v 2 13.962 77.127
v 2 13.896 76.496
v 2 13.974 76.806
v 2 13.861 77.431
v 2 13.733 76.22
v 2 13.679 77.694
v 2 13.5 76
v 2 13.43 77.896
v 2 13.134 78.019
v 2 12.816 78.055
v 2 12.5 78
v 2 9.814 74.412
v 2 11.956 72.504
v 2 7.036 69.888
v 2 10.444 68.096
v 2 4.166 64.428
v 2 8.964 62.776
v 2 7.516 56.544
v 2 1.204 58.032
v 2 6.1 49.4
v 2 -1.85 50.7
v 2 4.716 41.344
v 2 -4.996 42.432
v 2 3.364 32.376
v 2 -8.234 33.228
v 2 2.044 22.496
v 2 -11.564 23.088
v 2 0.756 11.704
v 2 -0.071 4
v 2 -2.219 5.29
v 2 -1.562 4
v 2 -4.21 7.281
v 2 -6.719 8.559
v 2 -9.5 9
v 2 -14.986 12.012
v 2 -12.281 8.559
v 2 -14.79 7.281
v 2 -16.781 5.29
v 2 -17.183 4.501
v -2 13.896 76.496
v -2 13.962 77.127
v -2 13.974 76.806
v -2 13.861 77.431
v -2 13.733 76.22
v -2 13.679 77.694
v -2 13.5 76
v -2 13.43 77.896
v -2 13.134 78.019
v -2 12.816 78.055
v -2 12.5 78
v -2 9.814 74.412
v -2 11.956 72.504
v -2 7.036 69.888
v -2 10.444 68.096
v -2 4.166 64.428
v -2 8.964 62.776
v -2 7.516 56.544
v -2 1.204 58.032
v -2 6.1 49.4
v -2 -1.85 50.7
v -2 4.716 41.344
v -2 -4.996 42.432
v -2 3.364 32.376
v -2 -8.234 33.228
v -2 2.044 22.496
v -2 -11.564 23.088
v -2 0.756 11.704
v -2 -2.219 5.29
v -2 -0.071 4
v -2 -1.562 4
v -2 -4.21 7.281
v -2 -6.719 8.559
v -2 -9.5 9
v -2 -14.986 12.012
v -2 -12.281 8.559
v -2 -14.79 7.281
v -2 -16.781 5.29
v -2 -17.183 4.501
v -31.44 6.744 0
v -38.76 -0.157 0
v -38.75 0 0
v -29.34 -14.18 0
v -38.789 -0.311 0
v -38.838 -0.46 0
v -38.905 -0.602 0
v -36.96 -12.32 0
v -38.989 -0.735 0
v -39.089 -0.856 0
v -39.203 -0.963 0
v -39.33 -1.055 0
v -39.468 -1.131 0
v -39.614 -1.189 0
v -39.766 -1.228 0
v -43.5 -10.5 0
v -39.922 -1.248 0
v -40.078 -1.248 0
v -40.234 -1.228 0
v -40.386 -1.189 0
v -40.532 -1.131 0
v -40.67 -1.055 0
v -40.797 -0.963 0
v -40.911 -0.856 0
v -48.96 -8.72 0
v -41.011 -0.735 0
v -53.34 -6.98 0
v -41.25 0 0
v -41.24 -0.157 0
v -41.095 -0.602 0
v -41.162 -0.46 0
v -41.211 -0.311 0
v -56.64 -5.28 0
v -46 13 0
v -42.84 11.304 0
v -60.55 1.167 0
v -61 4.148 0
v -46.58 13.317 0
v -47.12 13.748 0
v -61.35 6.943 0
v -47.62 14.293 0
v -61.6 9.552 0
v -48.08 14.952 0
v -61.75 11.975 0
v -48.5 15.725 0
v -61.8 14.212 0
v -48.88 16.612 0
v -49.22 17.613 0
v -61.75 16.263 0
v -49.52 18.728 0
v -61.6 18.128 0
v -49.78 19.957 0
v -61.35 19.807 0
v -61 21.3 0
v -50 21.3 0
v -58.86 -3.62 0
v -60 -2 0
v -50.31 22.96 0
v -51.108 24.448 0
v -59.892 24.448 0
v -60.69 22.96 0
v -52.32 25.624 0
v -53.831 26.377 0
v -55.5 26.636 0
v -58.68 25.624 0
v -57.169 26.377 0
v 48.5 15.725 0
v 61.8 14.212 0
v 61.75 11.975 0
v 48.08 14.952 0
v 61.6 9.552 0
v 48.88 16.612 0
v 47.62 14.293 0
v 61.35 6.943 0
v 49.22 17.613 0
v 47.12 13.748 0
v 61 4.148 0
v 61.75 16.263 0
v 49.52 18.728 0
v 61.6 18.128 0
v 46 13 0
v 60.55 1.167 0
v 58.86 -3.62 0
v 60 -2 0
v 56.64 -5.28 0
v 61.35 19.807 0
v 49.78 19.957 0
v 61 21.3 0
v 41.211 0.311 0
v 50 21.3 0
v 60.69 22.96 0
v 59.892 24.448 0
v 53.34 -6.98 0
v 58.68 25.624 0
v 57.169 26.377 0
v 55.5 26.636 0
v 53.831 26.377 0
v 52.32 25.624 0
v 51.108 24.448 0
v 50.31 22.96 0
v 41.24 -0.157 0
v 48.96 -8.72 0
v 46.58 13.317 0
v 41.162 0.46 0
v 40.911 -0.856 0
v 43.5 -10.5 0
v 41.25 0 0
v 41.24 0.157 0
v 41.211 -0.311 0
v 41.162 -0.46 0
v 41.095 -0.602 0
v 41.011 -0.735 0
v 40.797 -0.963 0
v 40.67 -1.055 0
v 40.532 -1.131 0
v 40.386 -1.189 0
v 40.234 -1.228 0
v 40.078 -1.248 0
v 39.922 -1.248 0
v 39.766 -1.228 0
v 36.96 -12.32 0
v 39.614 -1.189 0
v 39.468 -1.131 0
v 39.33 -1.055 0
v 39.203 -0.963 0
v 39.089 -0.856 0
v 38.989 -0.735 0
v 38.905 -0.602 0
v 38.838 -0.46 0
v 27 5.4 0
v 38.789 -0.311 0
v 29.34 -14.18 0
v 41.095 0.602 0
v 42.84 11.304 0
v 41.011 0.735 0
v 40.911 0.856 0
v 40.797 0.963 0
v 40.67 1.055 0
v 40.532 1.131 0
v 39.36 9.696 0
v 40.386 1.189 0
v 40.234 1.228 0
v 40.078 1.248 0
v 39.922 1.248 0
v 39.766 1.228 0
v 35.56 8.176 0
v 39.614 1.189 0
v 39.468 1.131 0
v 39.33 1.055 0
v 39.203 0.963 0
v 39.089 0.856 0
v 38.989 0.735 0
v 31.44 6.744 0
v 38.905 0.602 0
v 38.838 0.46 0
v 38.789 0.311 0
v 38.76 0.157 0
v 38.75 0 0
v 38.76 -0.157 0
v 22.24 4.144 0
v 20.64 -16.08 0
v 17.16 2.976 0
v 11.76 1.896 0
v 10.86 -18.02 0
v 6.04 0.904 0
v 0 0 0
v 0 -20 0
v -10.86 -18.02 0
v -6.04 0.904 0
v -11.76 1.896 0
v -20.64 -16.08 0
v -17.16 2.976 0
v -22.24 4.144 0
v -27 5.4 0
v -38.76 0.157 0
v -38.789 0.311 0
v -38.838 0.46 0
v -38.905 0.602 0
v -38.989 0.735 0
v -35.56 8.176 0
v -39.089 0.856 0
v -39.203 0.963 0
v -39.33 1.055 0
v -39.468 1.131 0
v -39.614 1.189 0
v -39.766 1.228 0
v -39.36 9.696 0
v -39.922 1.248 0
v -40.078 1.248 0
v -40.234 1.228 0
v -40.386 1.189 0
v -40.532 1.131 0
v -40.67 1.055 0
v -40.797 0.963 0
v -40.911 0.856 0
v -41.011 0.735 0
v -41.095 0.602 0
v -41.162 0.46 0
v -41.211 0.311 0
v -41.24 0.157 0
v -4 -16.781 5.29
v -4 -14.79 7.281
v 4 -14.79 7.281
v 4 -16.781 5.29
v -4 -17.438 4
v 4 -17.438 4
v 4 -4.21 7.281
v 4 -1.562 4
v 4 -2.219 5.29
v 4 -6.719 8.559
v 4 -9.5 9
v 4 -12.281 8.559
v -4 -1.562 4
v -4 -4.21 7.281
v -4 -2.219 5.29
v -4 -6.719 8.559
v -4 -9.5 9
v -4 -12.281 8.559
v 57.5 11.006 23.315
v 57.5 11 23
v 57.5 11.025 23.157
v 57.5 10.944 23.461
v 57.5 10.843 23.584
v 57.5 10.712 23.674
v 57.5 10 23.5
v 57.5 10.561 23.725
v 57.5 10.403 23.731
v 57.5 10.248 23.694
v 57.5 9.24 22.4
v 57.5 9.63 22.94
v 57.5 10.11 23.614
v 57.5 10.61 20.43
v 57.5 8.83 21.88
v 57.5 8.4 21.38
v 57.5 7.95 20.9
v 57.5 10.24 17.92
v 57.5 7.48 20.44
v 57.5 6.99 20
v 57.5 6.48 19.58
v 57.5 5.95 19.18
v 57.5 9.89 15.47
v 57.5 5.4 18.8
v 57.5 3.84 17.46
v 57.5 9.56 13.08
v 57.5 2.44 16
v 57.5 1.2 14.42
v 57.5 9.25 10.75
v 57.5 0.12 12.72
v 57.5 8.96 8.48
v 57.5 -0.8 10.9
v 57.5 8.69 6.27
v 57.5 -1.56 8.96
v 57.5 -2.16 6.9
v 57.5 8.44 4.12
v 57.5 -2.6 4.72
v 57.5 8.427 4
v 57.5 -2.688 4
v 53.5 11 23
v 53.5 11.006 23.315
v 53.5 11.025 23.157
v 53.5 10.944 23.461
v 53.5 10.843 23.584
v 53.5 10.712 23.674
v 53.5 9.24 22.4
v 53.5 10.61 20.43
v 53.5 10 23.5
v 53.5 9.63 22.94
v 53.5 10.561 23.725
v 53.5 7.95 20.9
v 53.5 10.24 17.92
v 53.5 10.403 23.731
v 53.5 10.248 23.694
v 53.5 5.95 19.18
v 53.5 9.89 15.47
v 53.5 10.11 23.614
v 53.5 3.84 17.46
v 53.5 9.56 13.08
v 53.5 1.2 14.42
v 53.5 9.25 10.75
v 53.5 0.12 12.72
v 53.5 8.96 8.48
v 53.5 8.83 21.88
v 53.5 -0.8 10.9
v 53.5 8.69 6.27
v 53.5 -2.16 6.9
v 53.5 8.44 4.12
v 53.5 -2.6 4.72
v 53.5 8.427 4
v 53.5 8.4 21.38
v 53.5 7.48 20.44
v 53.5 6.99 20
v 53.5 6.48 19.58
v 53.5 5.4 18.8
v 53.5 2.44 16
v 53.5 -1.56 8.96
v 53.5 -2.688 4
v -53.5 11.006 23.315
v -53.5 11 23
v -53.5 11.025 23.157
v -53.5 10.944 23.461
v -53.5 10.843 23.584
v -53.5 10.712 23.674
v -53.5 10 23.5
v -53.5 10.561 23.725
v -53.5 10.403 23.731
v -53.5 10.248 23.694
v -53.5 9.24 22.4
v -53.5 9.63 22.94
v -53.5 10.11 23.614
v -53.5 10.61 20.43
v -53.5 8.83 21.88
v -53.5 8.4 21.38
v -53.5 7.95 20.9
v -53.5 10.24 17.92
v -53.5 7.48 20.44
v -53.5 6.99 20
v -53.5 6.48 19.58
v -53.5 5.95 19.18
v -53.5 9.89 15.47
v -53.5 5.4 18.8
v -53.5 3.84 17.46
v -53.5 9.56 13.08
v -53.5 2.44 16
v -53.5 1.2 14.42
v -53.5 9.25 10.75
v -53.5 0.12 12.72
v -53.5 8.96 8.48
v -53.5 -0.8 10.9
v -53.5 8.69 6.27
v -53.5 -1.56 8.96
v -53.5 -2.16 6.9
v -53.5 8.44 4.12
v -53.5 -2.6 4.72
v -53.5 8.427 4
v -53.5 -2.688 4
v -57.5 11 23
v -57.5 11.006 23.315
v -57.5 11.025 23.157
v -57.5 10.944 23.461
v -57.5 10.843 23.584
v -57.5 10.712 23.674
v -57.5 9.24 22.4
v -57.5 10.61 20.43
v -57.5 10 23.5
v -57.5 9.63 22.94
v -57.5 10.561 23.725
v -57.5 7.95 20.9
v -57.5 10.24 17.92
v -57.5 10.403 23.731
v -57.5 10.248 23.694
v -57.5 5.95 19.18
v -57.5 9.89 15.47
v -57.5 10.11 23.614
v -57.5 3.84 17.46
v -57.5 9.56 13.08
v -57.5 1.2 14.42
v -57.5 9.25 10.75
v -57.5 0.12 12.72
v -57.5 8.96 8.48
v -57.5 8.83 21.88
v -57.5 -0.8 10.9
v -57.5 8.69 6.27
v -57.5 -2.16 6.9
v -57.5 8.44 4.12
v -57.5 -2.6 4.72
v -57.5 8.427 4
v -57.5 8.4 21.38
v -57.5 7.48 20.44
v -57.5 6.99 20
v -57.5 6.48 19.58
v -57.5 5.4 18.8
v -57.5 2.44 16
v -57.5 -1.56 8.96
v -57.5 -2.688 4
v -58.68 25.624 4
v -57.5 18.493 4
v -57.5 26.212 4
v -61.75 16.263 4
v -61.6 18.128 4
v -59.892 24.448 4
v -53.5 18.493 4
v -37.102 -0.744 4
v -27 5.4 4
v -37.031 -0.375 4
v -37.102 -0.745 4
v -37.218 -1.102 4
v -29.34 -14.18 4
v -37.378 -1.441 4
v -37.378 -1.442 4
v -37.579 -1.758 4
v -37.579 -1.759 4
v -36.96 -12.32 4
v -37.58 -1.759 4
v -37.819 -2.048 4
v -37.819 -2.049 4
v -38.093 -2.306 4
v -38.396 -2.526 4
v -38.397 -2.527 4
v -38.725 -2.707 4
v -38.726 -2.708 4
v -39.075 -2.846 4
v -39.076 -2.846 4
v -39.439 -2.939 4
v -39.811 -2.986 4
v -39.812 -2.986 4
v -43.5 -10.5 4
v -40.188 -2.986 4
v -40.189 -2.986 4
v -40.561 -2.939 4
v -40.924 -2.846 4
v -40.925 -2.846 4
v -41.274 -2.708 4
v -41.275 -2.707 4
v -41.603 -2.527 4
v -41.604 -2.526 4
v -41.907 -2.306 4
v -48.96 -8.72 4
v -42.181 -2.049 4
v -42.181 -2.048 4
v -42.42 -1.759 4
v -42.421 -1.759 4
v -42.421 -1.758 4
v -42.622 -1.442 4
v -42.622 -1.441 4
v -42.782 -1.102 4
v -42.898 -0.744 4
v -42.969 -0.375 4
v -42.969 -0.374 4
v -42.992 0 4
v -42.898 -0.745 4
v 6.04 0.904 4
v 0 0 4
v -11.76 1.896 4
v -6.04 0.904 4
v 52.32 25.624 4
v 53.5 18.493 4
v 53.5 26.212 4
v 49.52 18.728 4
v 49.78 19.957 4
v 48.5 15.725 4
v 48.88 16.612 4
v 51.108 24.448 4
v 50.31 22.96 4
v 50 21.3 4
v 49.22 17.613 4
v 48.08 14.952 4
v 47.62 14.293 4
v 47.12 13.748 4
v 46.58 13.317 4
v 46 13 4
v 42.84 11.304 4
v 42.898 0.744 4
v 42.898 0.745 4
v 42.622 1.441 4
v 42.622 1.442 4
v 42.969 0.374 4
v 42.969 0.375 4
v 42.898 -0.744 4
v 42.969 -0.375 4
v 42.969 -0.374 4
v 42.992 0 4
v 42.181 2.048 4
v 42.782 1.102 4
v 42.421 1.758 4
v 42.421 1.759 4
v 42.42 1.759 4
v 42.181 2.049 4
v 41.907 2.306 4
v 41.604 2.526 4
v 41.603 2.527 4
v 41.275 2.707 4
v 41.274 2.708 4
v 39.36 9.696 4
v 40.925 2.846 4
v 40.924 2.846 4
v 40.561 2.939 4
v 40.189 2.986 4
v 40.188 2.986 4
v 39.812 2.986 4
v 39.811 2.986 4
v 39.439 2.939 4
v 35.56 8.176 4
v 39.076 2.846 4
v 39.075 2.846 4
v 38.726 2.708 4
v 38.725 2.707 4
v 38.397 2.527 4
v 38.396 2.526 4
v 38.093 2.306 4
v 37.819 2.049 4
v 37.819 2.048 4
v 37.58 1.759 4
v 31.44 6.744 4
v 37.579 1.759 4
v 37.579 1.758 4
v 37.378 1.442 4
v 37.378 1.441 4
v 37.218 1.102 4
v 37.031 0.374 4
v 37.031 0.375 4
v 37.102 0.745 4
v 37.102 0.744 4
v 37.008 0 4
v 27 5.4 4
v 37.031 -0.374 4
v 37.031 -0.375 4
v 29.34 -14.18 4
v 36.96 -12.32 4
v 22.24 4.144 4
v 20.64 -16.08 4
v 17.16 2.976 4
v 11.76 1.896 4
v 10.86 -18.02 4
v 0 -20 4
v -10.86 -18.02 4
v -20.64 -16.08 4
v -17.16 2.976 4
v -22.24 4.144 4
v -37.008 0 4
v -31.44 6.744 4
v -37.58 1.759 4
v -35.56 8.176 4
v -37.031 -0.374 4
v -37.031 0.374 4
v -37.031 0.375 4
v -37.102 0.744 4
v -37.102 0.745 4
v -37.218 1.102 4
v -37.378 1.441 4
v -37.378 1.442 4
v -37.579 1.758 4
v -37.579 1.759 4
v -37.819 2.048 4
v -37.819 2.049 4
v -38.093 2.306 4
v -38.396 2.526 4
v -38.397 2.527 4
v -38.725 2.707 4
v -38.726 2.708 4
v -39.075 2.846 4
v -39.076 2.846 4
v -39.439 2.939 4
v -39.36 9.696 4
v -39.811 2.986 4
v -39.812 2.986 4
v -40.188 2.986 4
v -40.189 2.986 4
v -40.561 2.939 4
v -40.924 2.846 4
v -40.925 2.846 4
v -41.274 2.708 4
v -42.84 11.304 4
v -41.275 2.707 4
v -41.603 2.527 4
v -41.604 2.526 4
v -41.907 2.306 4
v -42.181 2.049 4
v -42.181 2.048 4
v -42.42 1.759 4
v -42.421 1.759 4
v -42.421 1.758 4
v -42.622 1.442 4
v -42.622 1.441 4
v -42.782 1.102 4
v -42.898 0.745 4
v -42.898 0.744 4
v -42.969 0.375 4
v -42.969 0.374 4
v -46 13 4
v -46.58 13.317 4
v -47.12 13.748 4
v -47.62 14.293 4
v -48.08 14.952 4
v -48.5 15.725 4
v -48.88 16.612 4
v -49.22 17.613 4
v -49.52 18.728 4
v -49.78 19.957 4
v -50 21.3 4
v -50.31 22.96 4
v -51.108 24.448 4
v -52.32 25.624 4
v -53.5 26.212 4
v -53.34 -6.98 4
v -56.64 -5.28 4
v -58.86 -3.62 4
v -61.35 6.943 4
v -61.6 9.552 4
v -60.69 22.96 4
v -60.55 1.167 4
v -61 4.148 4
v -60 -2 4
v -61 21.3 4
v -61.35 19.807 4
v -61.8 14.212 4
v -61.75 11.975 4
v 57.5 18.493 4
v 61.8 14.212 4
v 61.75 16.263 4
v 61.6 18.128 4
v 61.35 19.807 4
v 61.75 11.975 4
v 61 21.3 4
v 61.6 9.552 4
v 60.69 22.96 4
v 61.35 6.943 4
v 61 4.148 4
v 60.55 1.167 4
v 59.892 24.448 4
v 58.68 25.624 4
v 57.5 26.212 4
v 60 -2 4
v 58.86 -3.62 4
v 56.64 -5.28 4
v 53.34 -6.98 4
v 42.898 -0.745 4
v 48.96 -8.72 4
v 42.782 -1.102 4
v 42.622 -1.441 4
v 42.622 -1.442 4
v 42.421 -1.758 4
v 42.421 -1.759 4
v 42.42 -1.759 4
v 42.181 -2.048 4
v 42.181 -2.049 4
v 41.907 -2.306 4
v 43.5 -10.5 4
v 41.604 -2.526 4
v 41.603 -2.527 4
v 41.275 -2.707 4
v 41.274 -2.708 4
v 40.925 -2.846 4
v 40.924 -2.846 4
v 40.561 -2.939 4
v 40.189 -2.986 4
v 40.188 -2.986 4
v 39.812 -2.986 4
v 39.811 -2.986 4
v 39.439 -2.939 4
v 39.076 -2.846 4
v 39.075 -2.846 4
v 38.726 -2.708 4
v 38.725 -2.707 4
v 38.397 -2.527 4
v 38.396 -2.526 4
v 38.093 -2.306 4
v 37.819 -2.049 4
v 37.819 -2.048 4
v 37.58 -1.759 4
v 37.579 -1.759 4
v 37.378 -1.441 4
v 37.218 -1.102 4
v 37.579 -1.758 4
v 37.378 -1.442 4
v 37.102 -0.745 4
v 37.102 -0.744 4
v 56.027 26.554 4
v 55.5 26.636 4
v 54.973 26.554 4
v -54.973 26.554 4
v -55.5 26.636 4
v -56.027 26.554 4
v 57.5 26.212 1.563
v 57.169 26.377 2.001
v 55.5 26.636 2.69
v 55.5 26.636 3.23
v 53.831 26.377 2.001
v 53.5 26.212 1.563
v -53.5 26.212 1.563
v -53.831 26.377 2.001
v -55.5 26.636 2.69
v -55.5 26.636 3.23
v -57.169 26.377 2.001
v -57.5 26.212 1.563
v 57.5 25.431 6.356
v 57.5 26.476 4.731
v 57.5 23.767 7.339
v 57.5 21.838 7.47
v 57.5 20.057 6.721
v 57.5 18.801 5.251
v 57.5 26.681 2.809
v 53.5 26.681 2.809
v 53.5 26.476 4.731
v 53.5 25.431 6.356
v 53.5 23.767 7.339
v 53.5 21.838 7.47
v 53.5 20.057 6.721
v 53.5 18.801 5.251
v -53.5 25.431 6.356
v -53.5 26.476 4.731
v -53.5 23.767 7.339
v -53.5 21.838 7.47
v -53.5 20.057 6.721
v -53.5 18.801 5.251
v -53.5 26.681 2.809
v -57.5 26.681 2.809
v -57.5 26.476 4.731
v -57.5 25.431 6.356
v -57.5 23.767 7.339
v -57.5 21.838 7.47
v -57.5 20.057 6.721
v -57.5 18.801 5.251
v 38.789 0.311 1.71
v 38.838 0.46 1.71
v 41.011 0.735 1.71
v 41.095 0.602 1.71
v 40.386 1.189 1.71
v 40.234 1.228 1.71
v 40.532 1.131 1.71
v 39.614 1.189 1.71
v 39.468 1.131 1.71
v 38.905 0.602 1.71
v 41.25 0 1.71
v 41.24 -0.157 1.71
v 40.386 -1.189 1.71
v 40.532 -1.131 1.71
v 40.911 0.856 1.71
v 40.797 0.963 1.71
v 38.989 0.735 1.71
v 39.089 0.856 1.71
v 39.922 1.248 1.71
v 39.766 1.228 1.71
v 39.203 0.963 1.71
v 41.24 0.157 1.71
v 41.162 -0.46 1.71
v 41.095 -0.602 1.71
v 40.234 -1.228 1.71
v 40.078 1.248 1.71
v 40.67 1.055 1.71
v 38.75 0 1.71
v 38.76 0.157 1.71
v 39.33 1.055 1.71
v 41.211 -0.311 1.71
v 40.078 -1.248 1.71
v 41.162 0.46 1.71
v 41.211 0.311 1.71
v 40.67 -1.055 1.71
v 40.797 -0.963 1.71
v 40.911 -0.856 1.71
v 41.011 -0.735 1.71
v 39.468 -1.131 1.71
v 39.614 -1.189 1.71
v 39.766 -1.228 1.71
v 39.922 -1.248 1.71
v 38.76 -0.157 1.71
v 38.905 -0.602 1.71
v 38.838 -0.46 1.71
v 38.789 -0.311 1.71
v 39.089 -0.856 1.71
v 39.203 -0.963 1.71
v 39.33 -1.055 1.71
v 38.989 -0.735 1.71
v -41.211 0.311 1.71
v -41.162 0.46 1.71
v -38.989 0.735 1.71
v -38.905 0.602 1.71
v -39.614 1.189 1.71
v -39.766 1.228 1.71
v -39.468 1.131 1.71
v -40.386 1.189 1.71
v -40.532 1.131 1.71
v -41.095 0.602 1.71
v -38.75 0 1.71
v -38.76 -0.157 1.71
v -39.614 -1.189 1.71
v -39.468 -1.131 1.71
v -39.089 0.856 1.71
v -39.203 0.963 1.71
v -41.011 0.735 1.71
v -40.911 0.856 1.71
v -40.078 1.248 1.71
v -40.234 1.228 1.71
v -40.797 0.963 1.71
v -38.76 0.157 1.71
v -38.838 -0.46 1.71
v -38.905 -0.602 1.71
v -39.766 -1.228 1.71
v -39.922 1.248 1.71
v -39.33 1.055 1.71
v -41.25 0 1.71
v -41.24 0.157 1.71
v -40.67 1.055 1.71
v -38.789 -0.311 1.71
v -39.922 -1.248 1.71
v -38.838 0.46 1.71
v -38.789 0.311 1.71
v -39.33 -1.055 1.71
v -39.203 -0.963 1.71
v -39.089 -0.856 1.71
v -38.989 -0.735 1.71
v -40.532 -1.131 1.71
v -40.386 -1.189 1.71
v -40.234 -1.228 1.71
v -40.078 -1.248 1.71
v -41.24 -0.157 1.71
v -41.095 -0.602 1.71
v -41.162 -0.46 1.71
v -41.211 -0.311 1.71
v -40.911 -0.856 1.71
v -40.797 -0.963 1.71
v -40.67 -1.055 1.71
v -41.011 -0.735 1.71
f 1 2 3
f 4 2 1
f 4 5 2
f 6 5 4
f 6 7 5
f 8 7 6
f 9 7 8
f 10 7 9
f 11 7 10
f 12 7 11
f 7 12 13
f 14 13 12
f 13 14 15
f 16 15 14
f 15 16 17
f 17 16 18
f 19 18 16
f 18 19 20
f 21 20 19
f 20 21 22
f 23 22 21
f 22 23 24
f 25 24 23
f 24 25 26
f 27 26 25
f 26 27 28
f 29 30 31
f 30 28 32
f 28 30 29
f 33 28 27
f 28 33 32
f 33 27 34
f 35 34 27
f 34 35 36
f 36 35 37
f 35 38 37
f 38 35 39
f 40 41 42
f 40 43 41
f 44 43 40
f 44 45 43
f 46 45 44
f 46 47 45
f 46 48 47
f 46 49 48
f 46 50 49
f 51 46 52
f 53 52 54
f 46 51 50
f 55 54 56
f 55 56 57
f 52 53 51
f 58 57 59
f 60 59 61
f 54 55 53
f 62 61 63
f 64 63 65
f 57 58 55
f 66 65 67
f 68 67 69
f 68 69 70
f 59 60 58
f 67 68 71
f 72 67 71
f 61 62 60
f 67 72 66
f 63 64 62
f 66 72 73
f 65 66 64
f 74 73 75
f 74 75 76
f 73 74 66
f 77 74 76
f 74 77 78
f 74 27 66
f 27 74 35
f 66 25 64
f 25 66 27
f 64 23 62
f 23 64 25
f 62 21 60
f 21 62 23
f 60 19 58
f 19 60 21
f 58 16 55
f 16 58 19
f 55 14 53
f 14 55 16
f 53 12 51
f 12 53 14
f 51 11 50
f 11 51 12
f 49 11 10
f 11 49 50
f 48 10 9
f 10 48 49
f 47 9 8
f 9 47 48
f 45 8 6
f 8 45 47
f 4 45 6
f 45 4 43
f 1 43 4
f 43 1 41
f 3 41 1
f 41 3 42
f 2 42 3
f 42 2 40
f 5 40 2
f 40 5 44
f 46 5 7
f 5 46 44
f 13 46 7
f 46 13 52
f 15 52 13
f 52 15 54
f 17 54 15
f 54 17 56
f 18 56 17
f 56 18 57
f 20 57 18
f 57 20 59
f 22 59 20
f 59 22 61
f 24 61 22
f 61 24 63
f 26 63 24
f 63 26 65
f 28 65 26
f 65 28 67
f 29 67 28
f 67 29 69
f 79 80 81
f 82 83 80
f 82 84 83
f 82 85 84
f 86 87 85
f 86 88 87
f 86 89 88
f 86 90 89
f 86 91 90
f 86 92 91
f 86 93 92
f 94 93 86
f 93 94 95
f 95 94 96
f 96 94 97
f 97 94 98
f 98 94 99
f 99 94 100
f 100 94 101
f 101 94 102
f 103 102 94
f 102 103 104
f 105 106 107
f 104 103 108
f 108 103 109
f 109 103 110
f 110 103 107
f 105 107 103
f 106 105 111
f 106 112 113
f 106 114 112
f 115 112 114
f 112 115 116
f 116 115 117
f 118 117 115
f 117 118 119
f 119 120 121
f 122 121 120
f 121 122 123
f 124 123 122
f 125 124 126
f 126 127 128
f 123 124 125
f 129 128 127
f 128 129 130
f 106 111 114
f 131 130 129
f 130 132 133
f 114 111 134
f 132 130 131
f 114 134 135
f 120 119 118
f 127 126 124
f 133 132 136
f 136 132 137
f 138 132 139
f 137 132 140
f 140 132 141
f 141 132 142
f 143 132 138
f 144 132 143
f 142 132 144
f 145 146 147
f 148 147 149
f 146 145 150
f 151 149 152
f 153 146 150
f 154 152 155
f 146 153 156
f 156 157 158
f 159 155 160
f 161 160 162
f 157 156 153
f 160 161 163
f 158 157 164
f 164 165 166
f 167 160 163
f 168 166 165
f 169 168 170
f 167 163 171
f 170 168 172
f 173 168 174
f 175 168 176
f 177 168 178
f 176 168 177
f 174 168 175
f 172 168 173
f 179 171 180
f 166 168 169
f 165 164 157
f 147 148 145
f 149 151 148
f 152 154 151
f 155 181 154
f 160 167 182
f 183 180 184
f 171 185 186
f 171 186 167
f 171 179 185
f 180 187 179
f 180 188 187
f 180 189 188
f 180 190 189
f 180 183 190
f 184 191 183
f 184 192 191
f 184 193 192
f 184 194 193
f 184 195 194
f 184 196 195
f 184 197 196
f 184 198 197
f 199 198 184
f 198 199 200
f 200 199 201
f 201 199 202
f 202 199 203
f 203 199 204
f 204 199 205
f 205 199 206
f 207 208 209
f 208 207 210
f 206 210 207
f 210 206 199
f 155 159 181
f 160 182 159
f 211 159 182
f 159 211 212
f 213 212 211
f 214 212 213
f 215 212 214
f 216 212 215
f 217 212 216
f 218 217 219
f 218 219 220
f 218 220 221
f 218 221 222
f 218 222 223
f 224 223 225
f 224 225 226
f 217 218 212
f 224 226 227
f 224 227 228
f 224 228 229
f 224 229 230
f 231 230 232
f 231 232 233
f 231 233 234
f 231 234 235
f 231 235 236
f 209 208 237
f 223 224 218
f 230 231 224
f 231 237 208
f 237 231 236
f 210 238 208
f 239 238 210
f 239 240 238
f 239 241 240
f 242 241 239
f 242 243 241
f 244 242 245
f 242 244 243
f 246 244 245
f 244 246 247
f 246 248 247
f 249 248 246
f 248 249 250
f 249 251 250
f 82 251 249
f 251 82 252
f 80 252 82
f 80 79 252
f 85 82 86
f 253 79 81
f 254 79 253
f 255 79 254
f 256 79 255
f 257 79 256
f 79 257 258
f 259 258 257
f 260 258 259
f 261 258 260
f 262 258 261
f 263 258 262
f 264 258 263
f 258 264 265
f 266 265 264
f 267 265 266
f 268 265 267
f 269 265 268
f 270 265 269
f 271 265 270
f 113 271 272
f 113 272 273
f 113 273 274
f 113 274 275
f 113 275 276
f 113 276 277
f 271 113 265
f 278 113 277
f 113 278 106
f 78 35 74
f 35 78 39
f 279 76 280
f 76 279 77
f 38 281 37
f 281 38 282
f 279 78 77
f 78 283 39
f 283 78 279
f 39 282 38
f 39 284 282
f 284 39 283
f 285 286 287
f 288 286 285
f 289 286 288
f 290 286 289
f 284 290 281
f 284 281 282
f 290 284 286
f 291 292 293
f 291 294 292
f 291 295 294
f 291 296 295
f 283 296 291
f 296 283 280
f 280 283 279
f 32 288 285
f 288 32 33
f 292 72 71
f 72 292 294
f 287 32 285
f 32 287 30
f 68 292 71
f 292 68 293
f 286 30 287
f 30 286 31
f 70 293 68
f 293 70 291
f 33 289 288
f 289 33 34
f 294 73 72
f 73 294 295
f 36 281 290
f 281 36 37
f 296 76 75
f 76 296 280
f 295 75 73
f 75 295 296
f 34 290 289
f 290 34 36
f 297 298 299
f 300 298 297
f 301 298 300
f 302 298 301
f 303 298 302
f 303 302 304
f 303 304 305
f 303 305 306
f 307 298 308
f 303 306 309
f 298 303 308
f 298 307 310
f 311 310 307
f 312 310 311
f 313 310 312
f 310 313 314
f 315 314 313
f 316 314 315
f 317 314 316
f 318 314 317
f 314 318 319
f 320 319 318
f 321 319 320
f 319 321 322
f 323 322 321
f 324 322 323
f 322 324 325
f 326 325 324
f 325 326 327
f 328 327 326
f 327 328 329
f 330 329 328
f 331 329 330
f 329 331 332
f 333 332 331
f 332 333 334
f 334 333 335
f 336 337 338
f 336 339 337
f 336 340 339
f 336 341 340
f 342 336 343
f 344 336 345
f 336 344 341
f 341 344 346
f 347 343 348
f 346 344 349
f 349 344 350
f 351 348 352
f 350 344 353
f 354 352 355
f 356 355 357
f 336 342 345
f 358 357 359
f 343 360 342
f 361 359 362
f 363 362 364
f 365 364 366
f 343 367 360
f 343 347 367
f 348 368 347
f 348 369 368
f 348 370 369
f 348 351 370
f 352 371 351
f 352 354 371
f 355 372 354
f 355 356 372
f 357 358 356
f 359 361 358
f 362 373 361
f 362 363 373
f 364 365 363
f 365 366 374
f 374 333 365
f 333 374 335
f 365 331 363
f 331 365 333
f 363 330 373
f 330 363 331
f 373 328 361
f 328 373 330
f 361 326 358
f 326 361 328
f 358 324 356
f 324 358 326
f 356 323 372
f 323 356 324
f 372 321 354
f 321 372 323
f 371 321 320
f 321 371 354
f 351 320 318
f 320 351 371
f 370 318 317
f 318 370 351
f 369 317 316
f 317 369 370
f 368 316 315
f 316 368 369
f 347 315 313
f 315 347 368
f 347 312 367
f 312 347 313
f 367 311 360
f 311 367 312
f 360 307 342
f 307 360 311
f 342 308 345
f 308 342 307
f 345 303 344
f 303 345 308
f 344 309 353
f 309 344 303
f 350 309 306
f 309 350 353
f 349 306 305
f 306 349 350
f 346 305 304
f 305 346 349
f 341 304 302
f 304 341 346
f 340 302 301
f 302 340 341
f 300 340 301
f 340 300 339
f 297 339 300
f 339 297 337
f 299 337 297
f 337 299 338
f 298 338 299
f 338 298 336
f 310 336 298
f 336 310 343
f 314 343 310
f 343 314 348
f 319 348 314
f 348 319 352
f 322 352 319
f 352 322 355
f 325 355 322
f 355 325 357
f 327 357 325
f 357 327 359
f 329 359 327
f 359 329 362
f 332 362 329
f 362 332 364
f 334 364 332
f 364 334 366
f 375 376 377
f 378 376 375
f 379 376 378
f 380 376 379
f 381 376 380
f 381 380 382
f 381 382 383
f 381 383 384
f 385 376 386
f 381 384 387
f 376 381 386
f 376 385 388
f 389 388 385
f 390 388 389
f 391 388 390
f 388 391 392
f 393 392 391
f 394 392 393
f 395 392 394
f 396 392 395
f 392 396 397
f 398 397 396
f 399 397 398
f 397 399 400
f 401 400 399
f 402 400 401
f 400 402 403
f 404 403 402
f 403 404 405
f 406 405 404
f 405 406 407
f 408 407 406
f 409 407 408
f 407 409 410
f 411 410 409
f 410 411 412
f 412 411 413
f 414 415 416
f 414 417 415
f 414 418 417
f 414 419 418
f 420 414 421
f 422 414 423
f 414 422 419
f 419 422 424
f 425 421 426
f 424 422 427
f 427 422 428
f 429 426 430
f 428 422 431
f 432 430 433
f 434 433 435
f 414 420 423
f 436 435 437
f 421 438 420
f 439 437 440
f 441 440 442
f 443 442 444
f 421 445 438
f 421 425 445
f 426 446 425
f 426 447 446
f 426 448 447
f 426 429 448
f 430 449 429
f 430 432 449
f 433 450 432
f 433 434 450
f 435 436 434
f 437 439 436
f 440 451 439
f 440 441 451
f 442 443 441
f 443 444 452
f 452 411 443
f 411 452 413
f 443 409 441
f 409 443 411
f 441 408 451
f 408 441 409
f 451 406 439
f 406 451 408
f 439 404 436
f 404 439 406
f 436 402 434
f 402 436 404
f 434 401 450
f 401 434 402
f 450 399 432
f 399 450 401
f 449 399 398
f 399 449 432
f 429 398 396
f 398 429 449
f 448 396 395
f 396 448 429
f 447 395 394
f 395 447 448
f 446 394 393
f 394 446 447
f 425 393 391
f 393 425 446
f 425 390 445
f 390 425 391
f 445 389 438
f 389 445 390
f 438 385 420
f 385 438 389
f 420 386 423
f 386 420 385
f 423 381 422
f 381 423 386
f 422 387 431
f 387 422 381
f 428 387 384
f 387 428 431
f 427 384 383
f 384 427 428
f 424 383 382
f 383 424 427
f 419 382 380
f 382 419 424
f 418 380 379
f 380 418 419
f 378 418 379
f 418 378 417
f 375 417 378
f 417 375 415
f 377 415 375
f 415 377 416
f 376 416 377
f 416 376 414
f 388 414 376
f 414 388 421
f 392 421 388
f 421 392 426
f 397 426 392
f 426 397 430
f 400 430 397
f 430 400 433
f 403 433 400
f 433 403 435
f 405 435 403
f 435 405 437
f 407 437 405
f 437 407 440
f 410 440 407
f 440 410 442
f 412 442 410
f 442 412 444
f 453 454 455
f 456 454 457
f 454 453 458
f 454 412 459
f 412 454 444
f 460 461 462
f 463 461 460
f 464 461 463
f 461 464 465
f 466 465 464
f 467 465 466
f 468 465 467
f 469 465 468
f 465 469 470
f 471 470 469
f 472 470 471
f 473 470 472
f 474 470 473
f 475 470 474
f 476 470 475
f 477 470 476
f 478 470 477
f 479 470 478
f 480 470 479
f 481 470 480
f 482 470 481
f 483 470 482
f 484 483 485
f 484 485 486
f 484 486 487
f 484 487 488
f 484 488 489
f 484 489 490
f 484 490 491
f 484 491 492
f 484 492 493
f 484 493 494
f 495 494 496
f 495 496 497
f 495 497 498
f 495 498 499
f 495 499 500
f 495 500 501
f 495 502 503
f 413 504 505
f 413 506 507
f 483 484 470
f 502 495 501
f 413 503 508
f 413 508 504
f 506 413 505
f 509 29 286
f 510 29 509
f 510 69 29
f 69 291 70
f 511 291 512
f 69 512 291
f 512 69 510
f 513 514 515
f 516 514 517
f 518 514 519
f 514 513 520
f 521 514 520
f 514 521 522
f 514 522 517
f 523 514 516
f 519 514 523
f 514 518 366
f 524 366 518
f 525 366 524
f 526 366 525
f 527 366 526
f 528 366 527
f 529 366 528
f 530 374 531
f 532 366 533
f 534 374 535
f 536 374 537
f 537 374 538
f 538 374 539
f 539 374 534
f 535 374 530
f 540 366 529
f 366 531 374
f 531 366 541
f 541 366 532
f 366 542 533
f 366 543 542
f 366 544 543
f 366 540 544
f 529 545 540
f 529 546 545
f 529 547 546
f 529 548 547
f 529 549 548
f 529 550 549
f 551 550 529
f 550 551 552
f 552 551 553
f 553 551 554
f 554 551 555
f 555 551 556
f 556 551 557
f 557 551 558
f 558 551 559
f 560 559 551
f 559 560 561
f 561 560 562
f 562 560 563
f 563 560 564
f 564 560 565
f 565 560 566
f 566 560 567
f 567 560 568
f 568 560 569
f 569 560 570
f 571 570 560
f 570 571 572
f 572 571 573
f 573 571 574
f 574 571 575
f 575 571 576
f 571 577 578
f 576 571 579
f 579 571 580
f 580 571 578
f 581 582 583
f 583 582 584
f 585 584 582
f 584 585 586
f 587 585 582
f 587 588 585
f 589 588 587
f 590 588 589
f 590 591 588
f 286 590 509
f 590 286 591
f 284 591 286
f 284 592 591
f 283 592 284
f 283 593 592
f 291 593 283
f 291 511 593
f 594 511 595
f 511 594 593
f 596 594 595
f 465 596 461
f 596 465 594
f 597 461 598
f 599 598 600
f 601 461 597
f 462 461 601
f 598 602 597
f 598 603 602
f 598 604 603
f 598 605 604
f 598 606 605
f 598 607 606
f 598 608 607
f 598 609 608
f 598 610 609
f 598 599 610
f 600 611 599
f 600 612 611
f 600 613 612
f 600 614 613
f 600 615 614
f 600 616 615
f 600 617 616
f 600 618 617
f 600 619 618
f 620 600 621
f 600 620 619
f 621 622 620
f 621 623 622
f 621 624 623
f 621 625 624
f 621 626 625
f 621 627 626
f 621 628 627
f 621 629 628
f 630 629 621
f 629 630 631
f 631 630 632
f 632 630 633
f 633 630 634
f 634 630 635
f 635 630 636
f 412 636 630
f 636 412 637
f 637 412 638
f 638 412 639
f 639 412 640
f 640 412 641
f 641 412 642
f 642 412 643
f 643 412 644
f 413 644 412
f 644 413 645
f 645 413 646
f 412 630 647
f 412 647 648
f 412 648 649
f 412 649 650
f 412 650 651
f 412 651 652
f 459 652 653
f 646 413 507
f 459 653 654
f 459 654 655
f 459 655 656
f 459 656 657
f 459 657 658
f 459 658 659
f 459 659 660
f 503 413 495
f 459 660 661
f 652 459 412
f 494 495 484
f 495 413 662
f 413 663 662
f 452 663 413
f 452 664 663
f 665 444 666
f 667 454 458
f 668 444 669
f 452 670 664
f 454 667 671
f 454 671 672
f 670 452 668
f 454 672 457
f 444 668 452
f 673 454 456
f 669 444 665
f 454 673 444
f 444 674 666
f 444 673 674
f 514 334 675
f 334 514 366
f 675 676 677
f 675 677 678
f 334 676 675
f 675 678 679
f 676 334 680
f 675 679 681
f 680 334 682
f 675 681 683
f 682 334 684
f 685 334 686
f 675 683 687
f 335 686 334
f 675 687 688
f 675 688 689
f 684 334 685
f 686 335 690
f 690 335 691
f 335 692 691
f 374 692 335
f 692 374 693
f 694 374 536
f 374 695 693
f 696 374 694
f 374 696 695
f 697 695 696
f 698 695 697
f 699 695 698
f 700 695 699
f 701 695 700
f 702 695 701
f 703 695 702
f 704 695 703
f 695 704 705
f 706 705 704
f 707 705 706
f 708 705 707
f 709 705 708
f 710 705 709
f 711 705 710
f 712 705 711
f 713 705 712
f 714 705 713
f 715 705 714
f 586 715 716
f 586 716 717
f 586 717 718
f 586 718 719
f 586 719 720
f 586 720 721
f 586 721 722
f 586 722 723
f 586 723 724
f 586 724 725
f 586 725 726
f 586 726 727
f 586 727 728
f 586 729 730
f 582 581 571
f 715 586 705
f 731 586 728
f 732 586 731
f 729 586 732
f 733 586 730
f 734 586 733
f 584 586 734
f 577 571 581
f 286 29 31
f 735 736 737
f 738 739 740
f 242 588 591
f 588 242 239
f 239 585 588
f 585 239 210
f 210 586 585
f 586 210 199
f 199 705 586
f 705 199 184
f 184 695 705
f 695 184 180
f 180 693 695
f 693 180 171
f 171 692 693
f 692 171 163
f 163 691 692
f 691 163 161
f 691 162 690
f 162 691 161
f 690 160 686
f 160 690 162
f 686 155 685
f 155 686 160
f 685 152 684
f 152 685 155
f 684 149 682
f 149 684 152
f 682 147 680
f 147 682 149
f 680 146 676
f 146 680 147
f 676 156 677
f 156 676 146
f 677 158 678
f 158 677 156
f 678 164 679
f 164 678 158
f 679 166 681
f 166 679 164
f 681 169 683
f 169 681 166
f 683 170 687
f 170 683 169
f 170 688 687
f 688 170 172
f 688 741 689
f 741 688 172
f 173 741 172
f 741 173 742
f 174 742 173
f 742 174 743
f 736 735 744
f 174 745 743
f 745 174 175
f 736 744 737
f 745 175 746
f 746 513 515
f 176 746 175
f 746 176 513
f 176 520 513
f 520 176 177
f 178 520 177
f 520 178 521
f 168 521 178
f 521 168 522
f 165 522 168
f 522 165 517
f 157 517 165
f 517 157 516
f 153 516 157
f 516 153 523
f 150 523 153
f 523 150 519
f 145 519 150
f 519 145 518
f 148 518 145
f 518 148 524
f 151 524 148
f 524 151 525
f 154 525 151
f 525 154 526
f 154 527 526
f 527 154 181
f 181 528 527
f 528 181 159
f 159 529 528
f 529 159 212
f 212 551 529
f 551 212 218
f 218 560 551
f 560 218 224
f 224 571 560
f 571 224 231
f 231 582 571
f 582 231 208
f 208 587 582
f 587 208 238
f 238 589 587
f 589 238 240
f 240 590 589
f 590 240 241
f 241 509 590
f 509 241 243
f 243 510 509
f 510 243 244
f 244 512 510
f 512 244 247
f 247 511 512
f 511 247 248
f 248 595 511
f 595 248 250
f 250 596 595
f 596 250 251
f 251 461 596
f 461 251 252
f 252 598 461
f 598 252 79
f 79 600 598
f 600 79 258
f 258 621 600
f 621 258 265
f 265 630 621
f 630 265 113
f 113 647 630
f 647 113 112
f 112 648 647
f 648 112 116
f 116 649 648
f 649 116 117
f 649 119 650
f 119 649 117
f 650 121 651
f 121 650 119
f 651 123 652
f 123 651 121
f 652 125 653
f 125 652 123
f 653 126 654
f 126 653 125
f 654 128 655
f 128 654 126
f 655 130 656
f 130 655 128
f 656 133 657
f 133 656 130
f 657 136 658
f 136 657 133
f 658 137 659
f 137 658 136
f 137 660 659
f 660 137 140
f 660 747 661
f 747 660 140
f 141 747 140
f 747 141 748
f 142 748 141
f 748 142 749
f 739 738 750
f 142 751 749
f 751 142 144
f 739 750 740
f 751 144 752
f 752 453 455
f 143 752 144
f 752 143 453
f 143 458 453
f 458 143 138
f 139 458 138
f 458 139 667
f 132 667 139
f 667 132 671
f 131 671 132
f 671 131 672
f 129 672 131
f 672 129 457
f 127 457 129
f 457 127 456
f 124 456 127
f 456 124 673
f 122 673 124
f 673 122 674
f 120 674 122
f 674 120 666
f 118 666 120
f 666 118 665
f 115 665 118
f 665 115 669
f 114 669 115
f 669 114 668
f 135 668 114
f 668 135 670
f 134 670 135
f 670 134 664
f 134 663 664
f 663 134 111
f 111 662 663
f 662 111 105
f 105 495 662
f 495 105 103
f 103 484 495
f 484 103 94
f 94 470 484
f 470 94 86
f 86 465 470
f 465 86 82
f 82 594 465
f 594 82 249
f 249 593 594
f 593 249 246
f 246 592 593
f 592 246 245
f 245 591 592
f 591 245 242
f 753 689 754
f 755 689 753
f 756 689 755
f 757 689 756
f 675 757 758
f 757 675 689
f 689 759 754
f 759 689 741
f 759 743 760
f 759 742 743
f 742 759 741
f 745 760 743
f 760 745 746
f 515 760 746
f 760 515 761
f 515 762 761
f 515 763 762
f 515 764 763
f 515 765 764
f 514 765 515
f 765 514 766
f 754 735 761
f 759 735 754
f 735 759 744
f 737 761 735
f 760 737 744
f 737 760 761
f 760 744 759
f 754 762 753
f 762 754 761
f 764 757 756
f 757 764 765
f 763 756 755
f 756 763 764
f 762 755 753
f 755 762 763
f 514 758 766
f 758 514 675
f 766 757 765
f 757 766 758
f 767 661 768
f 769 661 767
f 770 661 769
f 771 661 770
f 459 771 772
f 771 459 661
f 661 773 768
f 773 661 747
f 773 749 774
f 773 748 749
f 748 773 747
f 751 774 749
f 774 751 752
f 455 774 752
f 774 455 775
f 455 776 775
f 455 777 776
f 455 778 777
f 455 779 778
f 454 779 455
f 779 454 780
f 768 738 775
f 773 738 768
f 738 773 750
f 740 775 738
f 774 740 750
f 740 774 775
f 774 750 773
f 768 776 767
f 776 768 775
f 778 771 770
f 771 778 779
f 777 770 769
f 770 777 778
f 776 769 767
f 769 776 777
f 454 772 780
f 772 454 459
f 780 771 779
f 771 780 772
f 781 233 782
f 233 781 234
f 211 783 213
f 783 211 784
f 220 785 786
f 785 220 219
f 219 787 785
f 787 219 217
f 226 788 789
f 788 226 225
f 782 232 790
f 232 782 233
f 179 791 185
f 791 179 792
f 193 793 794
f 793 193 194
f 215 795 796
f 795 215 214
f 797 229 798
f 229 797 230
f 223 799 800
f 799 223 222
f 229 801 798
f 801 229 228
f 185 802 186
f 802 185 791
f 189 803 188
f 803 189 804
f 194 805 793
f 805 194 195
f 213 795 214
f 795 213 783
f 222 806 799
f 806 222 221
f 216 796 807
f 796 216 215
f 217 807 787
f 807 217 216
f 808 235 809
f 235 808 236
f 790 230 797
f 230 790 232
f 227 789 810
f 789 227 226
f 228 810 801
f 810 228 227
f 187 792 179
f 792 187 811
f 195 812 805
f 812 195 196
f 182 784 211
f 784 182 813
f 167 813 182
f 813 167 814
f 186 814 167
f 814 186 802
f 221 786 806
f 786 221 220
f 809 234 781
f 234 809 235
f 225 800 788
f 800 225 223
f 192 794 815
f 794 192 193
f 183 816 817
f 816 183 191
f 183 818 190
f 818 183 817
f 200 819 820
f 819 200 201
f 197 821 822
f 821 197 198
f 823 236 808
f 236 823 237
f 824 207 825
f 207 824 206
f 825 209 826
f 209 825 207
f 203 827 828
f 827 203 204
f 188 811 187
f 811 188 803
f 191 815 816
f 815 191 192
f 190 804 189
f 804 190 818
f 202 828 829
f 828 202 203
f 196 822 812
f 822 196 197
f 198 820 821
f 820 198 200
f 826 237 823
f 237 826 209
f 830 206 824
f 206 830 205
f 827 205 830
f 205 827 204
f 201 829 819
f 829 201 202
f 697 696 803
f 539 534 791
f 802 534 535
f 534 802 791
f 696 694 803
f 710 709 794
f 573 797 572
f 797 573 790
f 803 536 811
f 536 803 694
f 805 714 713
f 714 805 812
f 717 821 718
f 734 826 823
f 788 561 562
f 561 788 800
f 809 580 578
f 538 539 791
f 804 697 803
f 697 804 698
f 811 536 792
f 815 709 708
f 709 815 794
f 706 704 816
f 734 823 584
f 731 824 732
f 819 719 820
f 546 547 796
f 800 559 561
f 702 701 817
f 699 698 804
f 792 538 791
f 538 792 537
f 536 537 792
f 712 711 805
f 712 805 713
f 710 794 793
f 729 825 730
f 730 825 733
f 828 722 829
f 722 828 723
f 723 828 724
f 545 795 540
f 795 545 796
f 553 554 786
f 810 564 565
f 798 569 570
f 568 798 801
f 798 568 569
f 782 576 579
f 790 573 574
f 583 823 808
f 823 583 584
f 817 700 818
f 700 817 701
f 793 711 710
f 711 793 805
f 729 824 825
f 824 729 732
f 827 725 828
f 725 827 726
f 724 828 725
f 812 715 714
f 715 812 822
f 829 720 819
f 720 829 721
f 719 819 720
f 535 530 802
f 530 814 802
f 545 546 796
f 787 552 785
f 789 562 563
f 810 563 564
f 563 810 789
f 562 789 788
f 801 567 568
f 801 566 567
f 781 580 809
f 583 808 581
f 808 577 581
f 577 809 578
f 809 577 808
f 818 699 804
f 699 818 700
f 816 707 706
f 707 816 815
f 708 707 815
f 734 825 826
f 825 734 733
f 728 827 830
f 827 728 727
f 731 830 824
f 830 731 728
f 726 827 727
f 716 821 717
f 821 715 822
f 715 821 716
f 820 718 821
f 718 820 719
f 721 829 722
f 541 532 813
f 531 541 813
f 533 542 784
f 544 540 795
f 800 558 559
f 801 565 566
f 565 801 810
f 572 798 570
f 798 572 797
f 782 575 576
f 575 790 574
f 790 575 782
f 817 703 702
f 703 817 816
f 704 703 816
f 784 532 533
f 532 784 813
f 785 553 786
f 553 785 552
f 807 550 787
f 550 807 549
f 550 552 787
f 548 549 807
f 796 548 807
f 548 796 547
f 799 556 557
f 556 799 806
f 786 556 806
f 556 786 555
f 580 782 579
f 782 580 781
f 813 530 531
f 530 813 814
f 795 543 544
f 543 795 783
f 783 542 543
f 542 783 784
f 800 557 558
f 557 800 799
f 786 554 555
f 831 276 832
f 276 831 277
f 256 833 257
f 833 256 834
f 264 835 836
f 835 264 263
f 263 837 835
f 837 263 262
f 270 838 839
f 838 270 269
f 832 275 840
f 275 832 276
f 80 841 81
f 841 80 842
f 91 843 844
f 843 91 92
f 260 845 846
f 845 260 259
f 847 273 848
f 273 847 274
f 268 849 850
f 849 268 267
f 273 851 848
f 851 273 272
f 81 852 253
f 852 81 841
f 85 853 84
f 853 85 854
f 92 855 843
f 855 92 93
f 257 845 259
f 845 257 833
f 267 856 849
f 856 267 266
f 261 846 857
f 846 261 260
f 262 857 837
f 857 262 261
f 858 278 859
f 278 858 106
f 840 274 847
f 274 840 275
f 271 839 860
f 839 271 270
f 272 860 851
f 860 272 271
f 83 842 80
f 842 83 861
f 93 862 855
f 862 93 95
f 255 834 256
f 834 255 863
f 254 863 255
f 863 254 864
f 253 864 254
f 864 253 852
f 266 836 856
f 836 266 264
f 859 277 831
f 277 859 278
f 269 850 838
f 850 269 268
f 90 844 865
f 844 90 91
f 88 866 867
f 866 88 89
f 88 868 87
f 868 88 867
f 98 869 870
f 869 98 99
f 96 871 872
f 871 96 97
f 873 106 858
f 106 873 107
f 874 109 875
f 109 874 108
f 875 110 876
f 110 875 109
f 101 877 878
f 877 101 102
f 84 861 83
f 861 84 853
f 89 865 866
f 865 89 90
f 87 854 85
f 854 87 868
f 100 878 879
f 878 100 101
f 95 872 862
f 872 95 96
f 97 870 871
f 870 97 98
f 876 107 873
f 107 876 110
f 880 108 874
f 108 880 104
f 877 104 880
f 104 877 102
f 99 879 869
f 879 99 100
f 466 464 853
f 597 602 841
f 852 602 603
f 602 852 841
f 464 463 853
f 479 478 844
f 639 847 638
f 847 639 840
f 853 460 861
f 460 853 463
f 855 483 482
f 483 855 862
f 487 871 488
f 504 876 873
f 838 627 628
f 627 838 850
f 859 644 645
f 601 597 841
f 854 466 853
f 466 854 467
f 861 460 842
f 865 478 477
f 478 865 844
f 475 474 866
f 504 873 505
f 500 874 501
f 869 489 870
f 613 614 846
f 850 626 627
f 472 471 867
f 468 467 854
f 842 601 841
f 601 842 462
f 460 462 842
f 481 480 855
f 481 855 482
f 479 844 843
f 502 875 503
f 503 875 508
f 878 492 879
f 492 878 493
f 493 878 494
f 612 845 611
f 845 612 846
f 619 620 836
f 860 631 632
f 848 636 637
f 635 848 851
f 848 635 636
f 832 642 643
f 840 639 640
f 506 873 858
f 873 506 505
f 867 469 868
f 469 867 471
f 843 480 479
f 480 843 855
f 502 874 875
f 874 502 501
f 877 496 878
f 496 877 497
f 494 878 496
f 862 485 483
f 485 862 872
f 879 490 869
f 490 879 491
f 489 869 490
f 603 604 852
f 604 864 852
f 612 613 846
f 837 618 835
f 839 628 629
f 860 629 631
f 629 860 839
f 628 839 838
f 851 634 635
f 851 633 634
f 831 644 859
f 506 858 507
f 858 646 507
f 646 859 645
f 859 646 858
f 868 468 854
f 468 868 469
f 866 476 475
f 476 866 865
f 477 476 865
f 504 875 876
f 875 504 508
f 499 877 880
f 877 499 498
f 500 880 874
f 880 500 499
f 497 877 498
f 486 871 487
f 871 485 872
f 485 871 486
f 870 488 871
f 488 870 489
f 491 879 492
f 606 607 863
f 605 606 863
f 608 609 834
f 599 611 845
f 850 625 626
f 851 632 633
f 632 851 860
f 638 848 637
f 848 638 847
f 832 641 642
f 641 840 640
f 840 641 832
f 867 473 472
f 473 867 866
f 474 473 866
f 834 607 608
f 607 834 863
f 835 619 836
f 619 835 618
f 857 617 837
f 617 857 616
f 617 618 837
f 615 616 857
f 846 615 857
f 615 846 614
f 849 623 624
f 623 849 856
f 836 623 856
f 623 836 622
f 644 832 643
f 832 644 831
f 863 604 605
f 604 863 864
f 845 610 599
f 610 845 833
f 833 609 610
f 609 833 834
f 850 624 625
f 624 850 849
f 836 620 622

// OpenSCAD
// file: vector.scad
function is_nan(x) = x != x ;

// reverse vector
function reverse(v) = [for (i =[len(v)-1:-1:0]) v[i]];
// repeat vector n-times
function repeat(v, n) = [for (i=[0:n*len(v)-1])  v[ i%len(v) ] ];
// allow negative indexes for vector (counting from the back). -1 is last element in array
function v_index(v, n) = is_undef(n) ? len(v) : n < 0 ? len(v)+n : n ;
// cut slice of vertor. `start` included , `end` excluded.
function slice(v, start, end=undef) = [for (i=[start:v_index(v,end)-1]) v[i] ];

function v_add(v, n) = [for (i=[0:len(v)-1]) v[i]+n ];

assert(reverse([1,2,3]) == [3,2,1]);
assert(repeat([1,2],3) ==  [1, 2, 1, 2, 1, 2]);
assert(v_index([1,2,3],-1)==2);
assert(v_index([1,2,3],0) == 0);
assert(v_index([1,2,3],undef)==3);
assert(slice([1,2,3],1,-1)==[2]);
assert(slice([1,2,3],1)==[2,3]);
assert(v_add([1,2,3],1)==[2,3,4]);
// file: 2d.scad
use <vector.scad>

function max_x(a, i = 0) = (len(a) == 0) ? 0 : (i < len(a) - 1) ? max(a[i][0], max_x(a, i+1)) : a[i][0];
function shift_x(a, dx, scaler=1) = [for ( p=a) [scaler*p[0]+dx,p[1]] ];

function scale_poly(a, s=[1,1]) = [for (p=a) [ s[0]*p[0], s[1]*p[1] ]];
function shift_poly(a, d=[0,0]) = [for (p=a) [ d + p ]];

function inverse_x(a) = shift_x(reverse(a),max_x(a),-1);
function mirror_x(a) = shift_x(reverse(a),0,-1);

function symmetry_x(a) = scale_poly(reverse(a),s=[-1,1]);
function symmetry_y(a) = scale_poly(reverse(a),s=[1,-1]);

function concat_with_undefs(prev,next) = 
    len(prev) == 0 ? next : 
        let (prev_last_p = prev[v_index(prev,-1)]) 
        is_undef(prev_last_p[1])  
            ? concat(slice(prev,0,-1),[[prev_last_p[0],next[0][1]]],next) 
            : is_undef(next[0][1]) 
                ? concat(prev, [[next[0][0],prev_last_p[1]]], slice(next,1)) 
                : concat(prev, next) ;

function join_poly(polys, r = [], i=0) = (i < len(polys)) ? 
    join_poly( polys, concat_with_undefs(r,shift_x(polys[i],max_x(r))) ,i+1) : r;

function line_segment(p1,p2) = [p1,[p2[0]-p1[0], p2[1] - p1[1]]];

function ls_slope(ls) = ls[1][1]/ls[1][0] ;

function ls_distance(ls) = sqrt(pow(ls[1][1],2)+pow(ls[1][0],2));

function ls_angle(ls) = 
    let (ss = sign(ls[1][1]) == -1 ? -1 : 1)
    let (sc = sign(ls[1][0]) == -1 ? -1 : 1)
    let (ts = asin(ls[1][1]/ls_distance(ls))) 
    ts != 0 ? ( sc == -1 ? ss * 180 - ts : ts ) : ss*acos(ls[1][0]/ls_distance(ls))  ;
    
assert(ls_angle([[0, 0], [1, 0]])==0);
assert(ls_angle([[0, 0], [-1, 0]])==180);


function angle_diff_cw(a1, a2) = a1 < a2 ? angle_diff_cw(a1+360, a2) : a1 - a2 ;

function angle_diff_ccw(a1, a2) = angle_diff_cw(a2, a1);

function ls_midpoint(ls) = ls[0]+ls[1]/2;

function ls_endpoint(ls) = ls[0]+ls[1];

function line(slope,pt) = [slope, pt[1]-slope*pt[0]];

function l_y(l,x) = l[0]*x + l[1];

function l_segment(l,x1,x2) = line_segment([x1, l_y(l,x1)], [x2, l_y(l,x2)]);

function ls_line(ls) = let(slope=ls_slope(ls)) line(slope,ls[0]);

function ls_perpendicular(ls) = 
    let (l = ls_line(ls)) 
    let (mp = ls_midpoint(ls))
    line(-1/l[0], mp);

function intersect_lines(l1, l2) = 
    let (x = (l2[1]-l1[1])/(l1[0]-l2[0]))
    [x,l_y(l1,x)];

function interpolate_point(ls,fraction) =  [
    ls[0][0] + fraction*ls[1][0],
    ls[0][1] + fraction*ls[1][1]
];


function bezier_curve( a, b, c ) =
    len(a)==3 ? _bezier_curve(a[0],a[1],a[2]) : _bezier_curve(a,b,c);

function _bezier_curve( p1, p2, p3 ) =
    [line_segment(p1,p2), line_segment(p2, p3)];

function curve_point(bc, fraction) =
    interpolate_point(
        line_segment(
            interpolate_point(bc[0],fraction), 
            interpolate_point(bc[1], fraction)), 
        fraction);

function bc_poly(bc, n_points=10) = [for ( f = [0:1/n_points:1]) curve_point(bc, f)] ;

function rake_poly(up_ramp, down_to_valley, n_of_valleys) = 
    join_poly(concat(
        [up_ramp],
        repeat(
            [
                down_to_valley, 
                inverse_x(down_to_valley) // up on other side of the valley
            ], 
            n_of_valleys),
        [inverse_x(up_ramp)] // down ramp
    ));

function arc_point(a,f) = 
    let(c = a[0])
    let(r = a[1])
    let(initial_angle = a[2])
    let(cw = a[3])
    let(range = a[4])
    let (angle = cw ? initial_angle - f * range : initial_angle + f * range)
    c+[r*cos(angle),r*sin(angle)];

function arc_poly(a, n_points=10) = [for ( f = [0:1/n_points:1]) arc_point(a, f)] ;

function arc( a, b, c ) =
    len(a)==3 ? _arc(a[0],a[1],a[2]) : _arc(a,b,c);

function _arc( p1, p2, p3 ) =
    let(ls1 = line_segment(p1,p2))
    let(ls2 = line_segment(p2,p3))
    let(ls3 = line_segment(p1,p3))    
    let(lp1 = ls_perpendicular(ls1))
    let(lp2 = ls_perpendicular(ls2))
    let(lp3 = ls_perpendicular(ls3))
    let(c12 = intersect_lines(lp1,lp2))
    let(c23 = intersect_lines(lp2,lp3))
    let(c13 = intersect_lines(lp1,lp3))
    let(c = !is_nan(c23[0]) ? c23 : !is_nan(c13[0])? c13 : c12 )
    let(r1 = line_segment(c,p1))
    let(r2 = line_segment(c,p2))
    let(r3 = line_segment(c,p3))
    let(r = ls_distance(r1))
    let(a1 = ls_angle(r1))
    let(a2 = ls_angle(r2))
    let(a3 = ls_angle(r3))
    let(cw = angle_diff_cw(a1,a2) < angle_diff_cw(a1,a3))
    let(a_diff = cw ? angle_diff_cw(a1,a3) : angle_diff_ccw(a1,a3))
    [c,r,a1,cw,a_diff];


// linear interpolation or extrapolation (middle by default or any ratio) 
// using 2 points `a` and `b`
function mid(a,b,ratio=.5) = b + (a-b)*ratio ; 

function triangle(a,b,split=.5,height=.5) =
    let (delta = (mid(a,b,height)-b) * [[0,1],[-1,0]])
    let (z = mid(a,b,split) + delta)
    [a,z,b];

assert(arc([0,0],[0,1],[1,1])==arc([[0,0],[0,1],[1,1]]));
assert(bezier_curve([0,0],[0,1],[1,1])==bezier_curve([[0,0],[0,1],[1,1]]));

// echo(arc([0,0],[0,1],[1,1]));
// echo(arc(triangle([0,0],[1,1],.5,-.5)));

assert(arc([0,0],[0,1],[1,1])==arc(triangle([0,0],[1,1],.5,-.5)));
assert(arc([1,1],[1,2],[2,2])==arc(triangle([1,1],[2,2],.5,-.5)));

// echo(arc([0,0],[1,0],[1,1]));
// echo(arc(triangle([0,0],[1,1],.5,.5)));

assert(arc([0,0],[1,0],[1,1])==arc(triangle([0,0],[1,1],.5,.5)));
assert(arc([1,1],[2,1],[2,2])==arc(triangle([1,1],[2,2],.5,.5)));

// echo(arc(triangle([1,0], [-1,0])));
assert(arc(triangle([1,0], [-1,0])) ==  [[0, 0], 1, 0, false, 180]);

// echo(arc(triangle([0,-1], [0,1])));
assert(arc(triangle([0,-1], [0,1])) ==  [[0, 0], 1, -90, false, 180]);

// echo(arc(triangle([0,-1], [0,1],height=-.5)));
assert(arc(triangle([0,-1], [0,1], height=-.5)) ==  [[0, 0], 1, -90, true, 180]);
// main file
use <2d.scad>
e=.01;
th=4;

top = [76,9.3];
bottom=[60,-2];


module countersink(hole_d,hole_h, screw_d,screw_h){
    h = hole_h - screw_h ;
    union(){
        cylinder(d=hole_d,h=h+e,$fn=50);
        translate([0,0,h]) cylinder(d1=hole_d, d2=screw_d,h=screw_h,$fn=50);
    }
}


hp = [23,8];
bp = [0,-6];
hp1 = hp+[.5,-1];
hp2 = mid(hp1,bp,.8)+[0,-2];

hook_poly = concat(
        bc_poly(bezier_curve([0,5],[10,6],hp)),
        arc_poly(arc(hp,hp+[.09,.02],hp1)),
        bc_poly(bezier_curve(hp1,mid(hp1,hp2)+[-.5,.5],hp2)),
        bc_poly(bezier_curve(hp2,mid(hp2,bp)+[3,-4],bp))
    );

tbump =[1,0];
bump_poly = arc_poly(arc(tbump,mid(tbump,bp)+[7,0],bp));

module side_support(ww,poly){
    translate([ww+th/2,26,0]) 
    rotate([0,-90,0])
    linear_extrude(height=th)
    polygon(points=poly);
}

turn_up1 = top-[30,-3.7];
turn_up2 = top-[26,-12];
turn_down = top-[15,-12];
halfback = concat(
            bc_poly(bezier_curve([0,0],top-[45,5],turn_up1)),
            bc_poly(bezier_curve(turn_up1,top-[27,-5],turn_up2)),
            arc_poly(arc(turn_up2,top-[16,-15],turn_down)),
            bc_poly(bezier_curve(turn_down,top-[13,-5],bottom)),
            bc_poly(bezier_curve(bottom,bottom-[3,8],[0,-20]))
        );


module backwall(ww)
    union(){
        translate([ww,0,-1+e]) 
            countersink(2.5,5,6,2.3);
    }

// hook(0);
tbase=[0,3];
bbase=[0,-15];
tip=[78,16];
ttip=tip+[-2,1];

horn_poly = concat(
            bc_poly(bezier_curve(tbase,mid(tbase,ttip,.2)-[0,5],ttip)),
            arc_poly(arc(ttip,tip+[0,.7],tip)),
            bc_poly(bezier_curve(tip,mid(tip,bbase,.8)-[0,7],bbase))
        );
horn_support = arc_poly(arc(tbase,mid(tbase,bbase)+[9,0],bbase));

module centered_poly(h,poly){
    translate([h/2,0,0])
    rotate([0,-90,0])
    linear_extrude(height=h)
    polygon(points=poly);
}

difference(){
    union(){
        linear_extrude(height=th)
        polygon(points=concat(halfback, symmetry_x(halfback)
        ));

        translate([0, -3.5, 0]){
            centered_poly(th,horn_poly);
            centered_poly(th+4,horn_support);
        }
        side_support(55.5,bump_poly);
        side_support(-55.5,bump_poly);

        translate([0,-23, 0]) {
            side_support(55.5,hook_poly);
            side_support(-55.5,hook_poly);
        }

    }
    backwall(40);
    backwall(-40);
}


// translate([0,20,15]) color("blue") 
// rotate([0,90,0]) cylinder(h=400,r=.2,center=true);
